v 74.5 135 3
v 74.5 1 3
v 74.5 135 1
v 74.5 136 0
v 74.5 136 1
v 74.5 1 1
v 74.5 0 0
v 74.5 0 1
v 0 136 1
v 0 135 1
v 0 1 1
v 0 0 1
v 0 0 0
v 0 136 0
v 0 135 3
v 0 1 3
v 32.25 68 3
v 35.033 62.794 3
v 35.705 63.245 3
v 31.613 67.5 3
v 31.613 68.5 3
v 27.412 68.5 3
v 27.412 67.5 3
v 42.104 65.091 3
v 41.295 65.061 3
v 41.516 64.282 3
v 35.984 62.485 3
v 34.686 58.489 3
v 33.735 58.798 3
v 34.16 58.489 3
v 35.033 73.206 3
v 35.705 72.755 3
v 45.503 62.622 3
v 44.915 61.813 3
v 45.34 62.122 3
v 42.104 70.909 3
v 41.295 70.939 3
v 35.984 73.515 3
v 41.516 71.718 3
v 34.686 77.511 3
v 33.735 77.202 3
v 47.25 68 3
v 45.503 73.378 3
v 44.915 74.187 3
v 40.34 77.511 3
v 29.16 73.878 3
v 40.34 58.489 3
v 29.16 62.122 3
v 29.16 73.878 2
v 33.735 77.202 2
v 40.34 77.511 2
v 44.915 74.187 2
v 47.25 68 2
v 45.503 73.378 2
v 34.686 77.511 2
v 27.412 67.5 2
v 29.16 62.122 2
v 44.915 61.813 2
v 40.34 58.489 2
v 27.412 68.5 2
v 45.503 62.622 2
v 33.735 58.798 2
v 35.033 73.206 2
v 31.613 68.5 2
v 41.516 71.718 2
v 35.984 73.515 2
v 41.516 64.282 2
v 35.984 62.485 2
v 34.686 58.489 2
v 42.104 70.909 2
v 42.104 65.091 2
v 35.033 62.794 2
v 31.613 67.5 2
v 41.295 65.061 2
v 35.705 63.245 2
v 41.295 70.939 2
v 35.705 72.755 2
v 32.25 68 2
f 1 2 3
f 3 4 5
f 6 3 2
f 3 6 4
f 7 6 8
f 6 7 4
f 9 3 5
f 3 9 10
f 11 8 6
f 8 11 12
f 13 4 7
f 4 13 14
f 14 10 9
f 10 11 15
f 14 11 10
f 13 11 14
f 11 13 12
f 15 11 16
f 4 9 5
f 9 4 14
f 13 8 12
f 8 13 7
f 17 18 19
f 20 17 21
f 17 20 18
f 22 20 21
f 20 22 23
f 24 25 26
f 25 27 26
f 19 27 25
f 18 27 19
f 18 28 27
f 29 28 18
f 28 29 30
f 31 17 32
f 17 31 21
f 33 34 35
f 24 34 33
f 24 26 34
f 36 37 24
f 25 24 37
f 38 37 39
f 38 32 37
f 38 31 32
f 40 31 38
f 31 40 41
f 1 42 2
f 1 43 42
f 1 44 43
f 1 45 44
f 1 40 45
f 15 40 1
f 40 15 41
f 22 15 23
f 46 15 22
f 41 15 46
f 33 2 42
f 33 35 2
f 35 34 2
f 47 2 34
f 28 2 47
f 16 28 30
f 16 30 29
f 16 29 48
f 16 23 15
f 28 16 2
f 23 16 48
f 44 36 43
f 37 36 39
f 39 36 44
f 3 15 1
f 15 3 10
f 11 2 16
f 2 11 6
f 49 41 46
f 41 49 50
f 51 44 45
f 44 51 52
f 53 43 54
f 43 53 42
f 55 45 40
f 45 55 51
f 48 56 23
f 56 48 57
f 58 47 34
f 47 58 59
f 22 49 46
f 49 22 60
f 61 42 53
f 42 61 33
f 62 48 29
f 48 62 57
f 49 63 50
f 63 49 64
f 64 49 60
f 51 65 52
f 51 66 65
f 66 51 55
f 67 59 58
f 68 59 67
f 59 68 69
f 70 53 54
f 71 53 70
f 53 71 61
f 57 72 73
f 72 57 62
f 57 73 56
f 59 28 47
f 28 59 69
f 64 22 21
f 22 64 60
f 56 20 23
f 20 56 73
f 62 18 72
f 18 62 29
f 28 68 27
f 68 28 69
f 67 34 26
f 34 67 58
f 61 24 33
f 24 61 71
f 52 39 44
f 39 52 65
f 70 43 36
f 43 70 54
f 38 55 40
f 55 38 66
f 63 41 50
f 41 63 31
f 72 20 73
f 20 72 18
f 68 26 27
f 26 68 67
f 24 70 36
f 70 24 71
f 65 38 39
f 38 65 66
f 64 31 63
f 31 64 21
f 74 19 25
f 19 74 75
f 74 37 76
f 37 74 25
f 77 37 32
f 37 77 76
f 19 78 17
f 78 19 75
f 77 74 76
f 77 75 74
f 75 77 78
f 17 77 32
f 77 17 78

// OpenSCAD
DIM = [
	76.5, // Spielerinnenablage richtung
	138, // Links-Rechts
	29
];



difference(){

	union(){
		cube([ DIM.x-2 , DIM.y-2 , 1 ]);
		translate([ 0 , 1 , 1 ]) cube([ DIM.x-2 , DIM.y-4 , 2 ]);
	}
	
	// Symbol
	translate([ 0.5*(DIM.x-2) , 0.5*(DIM.y-2) , 2 ]) Symbol();
}

module Symbol () {
	
	
	
	difference(){
		cylinder(h=10,r=10,$fn=10) ;
		translate ([-5,0,1]) cube([ 10 , 1 , 2 ],center=true);
		rotate([ 0 , 0 , 72 ]) translate ([-5,0,1]) cube([ 10 , 1 , 2 ],center=true);
		rotate([ 0 , 0 , 144 ]) translate ([-5,0,1]) cube([ 10 , 1 , 2 ],center=true);
		rotate([ 0 , 0 , 216 ]) translate ([-5,0,1]) cube([ 10 , 1 , 2 ],center=true);
		rotate([ 0 , 0 , 288 ]) translate ([-5,0,1]) cube([ 10 , 1 , 2 ],center=true);
		rotate([ 0 , 0 , 180 ]) cylinder(h=10,r=6,$fn=5);
	} rotate([ 0 , 0 , 180 ]) cylinder(h=10,r=5,$fn=5);
	
}
